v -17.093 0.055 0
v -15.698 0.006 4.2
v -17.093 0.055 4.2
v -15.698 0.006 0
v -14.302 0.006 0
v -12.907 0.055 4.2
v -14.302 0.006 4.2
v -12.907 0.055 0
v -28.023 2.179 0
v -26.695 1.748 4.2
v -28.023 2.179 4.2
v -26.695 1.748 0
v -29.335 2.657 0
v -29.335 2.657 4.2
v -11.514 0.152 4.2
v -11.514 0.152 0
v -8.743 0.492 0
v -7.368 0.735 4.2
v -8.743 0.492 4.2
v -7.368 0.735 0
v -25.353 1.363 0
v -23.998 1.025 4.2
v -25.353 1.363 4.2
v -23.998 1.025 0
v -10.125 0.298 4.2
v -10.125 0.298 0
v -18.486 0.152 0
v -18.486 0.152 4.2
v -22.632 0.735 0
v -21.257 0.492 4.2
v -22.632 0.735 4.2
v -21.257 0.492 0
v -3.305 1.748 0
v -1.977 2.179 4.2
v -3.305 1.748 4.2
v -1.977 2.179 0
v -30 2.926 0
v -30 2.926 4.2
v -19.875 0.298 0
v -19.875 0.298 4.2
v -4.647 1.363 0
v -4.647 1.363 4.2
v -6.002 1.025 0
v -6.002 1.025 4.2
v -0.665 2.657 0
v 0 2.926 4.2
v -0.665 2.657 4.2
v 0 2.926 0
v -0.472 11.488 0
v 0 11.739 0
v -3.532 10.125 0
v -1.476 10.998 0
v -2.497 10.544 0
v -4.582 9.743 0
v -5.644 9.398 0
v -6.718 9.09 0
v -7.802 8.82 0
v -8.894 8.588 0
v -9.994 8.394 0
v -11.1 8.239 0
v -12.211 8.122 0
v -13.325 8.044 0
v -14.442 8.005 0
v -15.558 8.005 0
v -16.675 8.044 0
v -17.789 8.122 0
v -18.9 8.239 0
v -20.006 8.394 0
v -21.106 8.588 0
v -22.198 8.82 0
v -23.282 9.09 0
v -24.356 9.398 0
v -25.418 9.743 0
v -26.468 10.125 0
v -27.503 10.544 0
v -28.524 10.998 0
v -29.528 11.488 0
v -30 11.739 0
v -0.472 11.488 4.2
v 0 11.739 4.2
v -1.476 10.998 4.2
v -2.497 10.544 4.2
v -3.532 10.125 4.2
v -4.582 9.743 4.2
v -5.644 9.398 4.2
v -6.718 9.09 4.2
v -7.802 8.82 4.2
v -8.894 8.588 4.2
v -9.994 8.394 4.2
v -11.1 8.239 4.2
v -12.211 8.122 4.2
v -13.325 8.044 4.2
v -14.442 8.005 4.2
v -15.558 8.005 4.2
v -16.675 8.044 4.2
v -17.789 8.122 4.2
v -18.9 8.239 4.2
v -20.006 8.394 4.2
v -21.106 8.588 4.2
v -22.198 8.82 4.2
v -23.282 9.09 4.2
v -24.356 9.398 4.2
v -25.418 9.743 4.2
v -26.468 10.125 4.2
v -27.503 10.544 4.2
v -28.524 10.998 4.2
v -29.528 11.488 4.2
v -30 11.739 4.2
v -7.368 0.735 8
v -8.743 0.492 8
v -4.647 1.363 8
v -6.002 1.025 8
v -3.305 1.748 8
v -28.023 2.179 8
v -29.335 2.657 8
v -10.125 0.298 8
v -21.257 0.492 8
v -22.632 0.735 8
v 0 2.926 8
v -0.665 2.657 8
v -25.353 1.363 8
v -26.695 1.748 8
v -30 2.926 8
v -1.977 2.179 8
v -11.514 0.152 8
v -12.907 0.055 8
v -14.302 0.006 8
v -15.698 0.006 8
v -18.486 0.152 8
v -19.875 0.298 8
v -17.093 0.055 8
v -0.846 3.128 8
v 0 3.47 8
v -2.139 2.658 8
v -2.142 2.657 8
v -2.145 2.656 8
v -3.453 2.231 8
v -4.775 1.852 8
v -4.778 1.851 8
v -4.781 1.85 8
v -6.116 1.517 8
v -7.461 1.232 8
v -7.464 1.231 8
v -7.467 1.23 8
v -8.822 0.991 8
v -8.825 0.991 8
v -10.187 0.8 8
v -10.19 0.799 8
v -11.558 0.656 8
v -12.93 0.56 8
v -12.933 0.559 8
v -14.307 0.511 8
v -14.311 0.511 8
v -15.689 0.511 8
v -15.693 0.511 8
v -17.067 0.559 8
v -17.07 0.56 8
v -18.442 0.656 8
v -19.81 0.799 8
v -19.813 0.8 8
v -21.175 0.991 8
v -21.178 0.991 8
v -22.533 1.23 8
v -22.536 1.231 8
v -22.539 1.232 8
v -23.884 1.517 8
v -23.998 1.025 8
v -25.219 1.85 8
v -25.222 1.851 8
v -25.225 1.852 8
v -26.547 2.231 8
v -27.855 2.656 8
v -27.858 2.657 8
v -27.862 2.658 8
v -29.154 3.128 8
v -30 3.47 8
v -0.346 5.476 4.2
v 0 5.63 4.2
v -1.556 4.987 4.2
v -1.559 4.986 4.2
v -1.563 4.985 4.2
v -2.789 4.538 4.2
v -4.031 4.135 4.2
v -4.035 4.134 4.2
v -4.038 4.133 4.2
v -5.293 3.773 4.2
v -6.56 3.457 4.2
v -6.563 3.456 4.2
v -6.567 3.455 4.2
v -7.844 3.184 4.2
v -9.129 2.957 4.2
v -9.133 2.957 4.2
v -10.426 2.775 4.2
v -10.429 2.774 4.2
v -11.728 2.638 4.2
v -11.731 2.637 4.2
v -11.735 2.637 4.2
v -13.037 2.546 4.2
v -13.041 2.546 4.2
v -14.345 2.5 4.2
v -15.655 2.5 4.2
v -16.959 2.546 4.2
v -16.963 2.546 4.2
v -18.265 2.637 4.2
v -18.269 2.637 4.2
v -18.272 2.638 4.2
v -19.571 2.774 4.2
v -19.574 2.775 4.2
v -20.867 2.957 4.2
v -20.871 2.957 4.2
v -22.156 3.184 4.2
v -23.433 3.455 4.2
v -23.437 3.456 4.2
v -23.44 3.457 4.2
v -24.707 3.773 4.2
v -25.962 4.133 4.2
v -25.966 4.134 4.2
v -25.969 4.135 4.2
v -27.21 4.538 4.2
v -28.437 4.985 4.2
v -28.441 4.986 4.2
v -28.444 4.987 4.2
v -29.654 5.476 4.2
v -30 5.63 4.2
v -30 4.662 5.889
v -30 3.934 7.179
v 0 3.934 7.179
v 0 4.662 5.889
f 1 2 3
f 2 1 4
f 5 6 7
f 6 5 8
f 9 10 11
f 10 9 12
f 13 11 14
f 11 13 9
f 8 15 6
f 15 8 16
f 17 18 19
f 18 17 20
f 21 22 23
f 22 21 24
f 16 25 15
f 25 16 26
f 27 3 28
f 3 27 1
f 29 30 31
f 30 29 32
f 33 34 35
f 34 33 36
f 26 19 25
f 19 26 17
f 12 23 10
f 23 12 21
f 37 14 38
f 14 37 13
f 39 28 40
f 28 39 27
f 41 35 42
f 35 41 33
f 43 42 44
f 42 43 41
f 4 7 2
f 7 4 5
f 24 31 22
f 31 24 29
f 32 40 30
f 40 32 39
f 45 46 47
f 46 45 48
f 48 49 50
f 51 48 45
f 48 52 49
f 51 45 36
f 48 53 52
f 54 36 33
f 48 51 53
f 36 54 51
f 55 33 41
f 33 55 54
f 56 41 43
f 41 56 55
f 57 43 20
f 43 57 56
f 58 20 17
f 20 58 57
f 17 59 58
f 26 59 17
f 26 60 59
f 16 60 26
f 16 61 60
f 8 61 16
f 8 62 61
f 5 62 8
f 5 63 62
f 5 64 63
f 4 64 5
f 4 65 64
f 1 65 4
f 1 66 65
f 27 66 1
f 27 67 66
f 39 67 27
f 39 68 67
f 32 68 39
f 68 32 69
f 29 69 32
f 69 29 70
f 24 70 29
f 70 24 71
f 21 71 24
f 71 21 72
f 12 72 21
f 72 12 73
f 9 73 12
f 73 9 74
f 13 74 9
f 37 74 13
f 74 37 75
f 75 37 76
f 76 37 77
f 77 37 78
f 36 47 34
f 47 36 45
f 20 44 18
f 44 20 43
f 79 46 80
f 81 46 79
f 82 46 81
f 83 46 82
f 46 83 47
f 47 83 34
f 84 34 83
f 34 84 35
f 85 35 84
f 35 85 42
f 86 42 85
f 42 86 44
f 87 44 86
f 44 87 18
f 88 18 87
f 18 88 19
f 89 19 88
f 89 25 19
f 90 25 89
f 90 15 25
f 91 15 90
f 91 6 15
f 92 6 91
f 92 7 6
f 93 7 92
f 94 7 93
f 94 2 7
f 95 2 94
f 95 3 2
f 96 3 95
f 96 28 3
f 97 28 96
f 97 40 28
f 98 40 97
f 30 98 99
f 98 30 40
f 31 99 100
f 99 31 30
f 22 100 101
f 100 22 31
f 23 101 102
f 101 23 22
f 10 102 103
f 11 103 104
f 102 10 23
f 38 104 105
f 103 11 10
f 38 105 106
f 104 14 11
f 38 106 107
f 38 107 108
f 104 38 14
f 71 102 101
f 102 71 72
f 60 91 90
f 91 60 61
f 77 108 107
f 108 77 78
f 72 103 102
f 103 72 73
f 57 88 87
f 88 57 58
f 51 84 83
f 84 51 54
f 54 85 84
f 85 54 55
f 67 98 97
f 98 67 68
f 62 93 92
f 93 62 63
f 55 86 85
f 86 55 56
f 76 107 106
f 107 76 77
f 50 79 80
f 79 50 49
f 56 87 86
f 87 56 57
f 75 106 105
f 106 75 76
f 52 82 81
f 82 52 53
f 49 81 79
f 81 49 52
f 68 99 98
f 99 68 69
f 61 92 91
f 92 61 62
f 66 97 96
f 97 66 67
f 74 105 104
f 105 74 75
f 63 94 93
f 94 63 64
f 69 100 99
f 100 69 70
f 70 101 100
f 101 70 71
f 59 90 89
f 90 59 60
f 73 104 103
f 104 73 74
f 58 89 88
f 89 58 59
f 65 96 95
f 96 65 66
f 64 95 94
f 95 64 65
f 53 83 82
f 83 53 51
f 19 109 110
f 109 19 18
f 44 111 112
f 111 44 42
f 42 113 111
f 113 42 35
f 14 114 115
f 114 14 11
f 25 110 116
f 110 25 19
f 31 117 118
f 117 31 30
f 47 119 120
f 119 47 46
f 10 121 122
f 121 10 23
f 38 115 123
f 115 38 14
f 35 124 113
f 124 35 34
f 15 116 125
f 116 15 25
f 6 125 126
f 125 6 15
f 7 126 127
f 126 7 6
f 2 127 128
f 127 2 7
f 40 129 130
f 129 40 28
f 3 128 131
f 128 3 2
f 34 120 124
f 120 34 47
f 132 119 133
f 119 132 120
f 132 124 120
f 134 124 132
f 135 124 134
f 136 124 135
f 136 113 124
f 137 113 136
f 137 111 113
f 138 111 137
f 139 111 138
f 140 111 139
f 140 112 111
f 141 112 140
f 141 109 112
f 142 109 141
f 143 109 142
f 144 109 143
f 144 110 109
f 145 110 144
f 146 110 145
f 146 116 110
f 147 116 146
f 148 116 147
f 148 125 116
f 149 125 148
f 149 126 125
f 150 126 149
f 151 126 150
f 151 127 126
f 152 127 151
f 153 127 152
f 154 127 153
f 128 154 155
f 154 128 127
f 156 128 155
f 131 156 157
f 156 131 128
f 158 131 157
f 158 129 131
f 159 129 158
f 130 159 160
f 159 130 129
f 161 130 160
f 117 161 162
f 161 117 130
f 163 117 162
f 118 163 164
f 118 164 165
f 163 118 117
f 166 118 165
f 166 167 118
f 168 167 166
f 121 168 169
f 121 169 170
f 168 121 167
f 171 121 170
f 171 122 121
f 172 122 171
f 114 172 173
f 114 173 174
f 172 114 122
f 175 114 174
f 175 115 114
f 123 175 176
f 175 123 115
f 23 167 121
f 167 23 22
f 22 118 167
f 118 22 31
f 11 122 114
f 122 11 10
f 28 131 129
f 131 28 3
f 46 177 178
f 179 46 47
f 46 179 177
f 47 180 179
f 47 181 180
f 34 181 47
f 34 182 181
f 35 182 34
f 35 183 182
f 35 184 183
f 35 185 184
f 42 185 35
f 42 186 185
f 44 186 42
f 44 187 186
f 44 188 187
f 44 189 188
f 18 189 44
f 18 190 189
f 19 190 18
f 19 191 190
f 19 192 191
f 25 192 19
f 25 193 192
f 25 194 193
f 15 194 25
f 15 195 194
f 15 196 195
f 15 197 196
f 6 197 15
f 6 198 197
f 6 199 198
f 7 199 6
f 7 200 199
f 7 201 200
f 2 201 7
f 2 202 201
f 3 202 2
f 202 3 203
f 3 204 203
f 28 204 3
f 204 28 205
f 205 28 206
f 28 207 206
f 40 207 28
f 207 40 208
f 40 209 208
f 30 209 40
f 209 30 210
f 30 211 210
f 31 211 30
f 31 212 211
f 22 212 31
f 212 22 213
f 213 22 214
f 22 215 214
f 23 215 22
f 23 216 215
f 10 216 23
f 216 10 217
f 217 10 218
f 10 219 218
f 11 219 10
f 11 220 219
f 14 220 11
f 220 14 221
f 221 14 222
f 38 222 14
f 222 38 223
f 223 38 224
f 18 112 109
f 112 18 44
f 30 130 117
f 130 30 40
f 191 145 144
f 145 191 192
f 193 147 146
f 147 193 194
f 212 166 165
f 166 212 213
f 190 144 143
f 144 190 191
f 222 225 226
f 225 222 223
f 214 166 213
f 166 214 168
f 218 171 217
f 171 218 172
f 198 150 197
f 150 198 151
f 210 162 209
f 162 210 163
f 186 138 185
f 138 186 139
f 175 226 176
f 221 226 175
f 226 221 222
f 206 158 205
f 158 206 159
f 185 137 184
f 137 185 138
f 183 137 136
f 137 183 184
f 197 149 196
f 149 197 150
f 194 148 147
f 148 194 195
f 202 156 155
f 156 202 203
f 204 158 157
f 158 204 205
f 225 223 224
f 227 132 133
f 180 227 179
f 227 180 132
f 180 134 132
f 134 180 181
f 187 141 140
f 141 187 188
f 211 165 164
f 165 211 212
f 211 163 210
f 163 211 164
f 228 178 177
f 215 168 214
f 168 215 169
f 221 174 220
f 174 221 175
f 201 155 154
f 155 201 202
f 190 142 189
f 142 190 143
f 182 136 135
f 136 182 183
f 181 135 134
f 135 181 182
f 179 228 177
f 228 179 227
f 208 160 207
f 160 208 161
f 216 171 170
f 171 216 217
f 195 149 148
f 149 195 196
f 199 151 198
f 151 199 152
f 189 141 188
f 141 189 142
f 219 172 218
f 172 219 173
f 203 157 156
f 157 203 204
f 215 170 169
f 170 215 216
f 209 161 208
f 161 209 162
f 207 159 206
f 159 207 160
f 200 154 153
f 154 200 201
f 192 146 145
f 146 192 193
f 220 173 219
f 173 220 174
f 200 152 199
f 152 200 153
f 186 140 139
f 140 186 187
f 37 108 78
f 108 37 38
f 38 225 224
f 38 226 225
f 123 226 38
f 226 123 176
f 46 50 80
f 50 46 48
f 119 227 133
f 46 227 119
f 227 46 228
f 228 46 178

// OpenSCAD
$fn = 180;
SOFA_WIDTH = 30;

SOFA_RADIUS = 40;
SOFA_DEPTH = 8;

SEAT_HEIGHT = 4.2;
SEAT_DEPTH = 5.5;

REST_HEIGHT = 3.8;
REST_TILT_DEPTH = 2;

HOLE_RADIUS = SOFA_RADIUS - SOFA_DEPTH;
eps = 0.01;
SOFA_HEIGHT = SEAT_HEIGHT + REST_HEIGHT;
module round_sofa() {
    difference() {
        rotate([-90, 0, 0]) {
            cylinder(SEAT_HEIGHT, SOFA_RADIUS, SOFA_RADIUS);
        }
        translate([0., -eps, 0.]) {
            rotate([-90, 0, 0]) {
                cylinder(SEAT_HEIGHT + 2 * eps, HOLE_RADIUS, HOLE_RADIUS);
            }
        }
    }
    translate([0., SEAT_HEIGHT, 0]) {
        difference() {
            rotate([-90, 0, 0]) {
                cylinder(REST_HEIGHT, SOFA_RADIUS, SOFA_RADIUS);
            }
            translate([0., -eps, 0.]) {
                rotate([-90, 0, 0]) {
                    cylinder(REST_HEIGHT + 2 * eps, HOLE_RADIUS + SEAT_DEPTH, HOLE_RADIUS + SEAT_DEPTH + REST_TILT_DEPTH);
                }
            }
        }
    }
}

rotate([90, 0, 0]) {
    translate([- 0.5 * SOFA_WIDTH, 0, -SOFA_RADIUS]) {
        rotate([0, -45, 0]) {
            intersection() {
                rotate([0, -45, 0]) {
                    translate([SOFA_RADIUS, 0, 0]){
                        #cube([2* SOFA_RADIUS, 2* SOFA_HEIGHT,  SOFA_WIDTH], center = true);
                    }
                }
                round_sofa();
            }
        }
    }
}
